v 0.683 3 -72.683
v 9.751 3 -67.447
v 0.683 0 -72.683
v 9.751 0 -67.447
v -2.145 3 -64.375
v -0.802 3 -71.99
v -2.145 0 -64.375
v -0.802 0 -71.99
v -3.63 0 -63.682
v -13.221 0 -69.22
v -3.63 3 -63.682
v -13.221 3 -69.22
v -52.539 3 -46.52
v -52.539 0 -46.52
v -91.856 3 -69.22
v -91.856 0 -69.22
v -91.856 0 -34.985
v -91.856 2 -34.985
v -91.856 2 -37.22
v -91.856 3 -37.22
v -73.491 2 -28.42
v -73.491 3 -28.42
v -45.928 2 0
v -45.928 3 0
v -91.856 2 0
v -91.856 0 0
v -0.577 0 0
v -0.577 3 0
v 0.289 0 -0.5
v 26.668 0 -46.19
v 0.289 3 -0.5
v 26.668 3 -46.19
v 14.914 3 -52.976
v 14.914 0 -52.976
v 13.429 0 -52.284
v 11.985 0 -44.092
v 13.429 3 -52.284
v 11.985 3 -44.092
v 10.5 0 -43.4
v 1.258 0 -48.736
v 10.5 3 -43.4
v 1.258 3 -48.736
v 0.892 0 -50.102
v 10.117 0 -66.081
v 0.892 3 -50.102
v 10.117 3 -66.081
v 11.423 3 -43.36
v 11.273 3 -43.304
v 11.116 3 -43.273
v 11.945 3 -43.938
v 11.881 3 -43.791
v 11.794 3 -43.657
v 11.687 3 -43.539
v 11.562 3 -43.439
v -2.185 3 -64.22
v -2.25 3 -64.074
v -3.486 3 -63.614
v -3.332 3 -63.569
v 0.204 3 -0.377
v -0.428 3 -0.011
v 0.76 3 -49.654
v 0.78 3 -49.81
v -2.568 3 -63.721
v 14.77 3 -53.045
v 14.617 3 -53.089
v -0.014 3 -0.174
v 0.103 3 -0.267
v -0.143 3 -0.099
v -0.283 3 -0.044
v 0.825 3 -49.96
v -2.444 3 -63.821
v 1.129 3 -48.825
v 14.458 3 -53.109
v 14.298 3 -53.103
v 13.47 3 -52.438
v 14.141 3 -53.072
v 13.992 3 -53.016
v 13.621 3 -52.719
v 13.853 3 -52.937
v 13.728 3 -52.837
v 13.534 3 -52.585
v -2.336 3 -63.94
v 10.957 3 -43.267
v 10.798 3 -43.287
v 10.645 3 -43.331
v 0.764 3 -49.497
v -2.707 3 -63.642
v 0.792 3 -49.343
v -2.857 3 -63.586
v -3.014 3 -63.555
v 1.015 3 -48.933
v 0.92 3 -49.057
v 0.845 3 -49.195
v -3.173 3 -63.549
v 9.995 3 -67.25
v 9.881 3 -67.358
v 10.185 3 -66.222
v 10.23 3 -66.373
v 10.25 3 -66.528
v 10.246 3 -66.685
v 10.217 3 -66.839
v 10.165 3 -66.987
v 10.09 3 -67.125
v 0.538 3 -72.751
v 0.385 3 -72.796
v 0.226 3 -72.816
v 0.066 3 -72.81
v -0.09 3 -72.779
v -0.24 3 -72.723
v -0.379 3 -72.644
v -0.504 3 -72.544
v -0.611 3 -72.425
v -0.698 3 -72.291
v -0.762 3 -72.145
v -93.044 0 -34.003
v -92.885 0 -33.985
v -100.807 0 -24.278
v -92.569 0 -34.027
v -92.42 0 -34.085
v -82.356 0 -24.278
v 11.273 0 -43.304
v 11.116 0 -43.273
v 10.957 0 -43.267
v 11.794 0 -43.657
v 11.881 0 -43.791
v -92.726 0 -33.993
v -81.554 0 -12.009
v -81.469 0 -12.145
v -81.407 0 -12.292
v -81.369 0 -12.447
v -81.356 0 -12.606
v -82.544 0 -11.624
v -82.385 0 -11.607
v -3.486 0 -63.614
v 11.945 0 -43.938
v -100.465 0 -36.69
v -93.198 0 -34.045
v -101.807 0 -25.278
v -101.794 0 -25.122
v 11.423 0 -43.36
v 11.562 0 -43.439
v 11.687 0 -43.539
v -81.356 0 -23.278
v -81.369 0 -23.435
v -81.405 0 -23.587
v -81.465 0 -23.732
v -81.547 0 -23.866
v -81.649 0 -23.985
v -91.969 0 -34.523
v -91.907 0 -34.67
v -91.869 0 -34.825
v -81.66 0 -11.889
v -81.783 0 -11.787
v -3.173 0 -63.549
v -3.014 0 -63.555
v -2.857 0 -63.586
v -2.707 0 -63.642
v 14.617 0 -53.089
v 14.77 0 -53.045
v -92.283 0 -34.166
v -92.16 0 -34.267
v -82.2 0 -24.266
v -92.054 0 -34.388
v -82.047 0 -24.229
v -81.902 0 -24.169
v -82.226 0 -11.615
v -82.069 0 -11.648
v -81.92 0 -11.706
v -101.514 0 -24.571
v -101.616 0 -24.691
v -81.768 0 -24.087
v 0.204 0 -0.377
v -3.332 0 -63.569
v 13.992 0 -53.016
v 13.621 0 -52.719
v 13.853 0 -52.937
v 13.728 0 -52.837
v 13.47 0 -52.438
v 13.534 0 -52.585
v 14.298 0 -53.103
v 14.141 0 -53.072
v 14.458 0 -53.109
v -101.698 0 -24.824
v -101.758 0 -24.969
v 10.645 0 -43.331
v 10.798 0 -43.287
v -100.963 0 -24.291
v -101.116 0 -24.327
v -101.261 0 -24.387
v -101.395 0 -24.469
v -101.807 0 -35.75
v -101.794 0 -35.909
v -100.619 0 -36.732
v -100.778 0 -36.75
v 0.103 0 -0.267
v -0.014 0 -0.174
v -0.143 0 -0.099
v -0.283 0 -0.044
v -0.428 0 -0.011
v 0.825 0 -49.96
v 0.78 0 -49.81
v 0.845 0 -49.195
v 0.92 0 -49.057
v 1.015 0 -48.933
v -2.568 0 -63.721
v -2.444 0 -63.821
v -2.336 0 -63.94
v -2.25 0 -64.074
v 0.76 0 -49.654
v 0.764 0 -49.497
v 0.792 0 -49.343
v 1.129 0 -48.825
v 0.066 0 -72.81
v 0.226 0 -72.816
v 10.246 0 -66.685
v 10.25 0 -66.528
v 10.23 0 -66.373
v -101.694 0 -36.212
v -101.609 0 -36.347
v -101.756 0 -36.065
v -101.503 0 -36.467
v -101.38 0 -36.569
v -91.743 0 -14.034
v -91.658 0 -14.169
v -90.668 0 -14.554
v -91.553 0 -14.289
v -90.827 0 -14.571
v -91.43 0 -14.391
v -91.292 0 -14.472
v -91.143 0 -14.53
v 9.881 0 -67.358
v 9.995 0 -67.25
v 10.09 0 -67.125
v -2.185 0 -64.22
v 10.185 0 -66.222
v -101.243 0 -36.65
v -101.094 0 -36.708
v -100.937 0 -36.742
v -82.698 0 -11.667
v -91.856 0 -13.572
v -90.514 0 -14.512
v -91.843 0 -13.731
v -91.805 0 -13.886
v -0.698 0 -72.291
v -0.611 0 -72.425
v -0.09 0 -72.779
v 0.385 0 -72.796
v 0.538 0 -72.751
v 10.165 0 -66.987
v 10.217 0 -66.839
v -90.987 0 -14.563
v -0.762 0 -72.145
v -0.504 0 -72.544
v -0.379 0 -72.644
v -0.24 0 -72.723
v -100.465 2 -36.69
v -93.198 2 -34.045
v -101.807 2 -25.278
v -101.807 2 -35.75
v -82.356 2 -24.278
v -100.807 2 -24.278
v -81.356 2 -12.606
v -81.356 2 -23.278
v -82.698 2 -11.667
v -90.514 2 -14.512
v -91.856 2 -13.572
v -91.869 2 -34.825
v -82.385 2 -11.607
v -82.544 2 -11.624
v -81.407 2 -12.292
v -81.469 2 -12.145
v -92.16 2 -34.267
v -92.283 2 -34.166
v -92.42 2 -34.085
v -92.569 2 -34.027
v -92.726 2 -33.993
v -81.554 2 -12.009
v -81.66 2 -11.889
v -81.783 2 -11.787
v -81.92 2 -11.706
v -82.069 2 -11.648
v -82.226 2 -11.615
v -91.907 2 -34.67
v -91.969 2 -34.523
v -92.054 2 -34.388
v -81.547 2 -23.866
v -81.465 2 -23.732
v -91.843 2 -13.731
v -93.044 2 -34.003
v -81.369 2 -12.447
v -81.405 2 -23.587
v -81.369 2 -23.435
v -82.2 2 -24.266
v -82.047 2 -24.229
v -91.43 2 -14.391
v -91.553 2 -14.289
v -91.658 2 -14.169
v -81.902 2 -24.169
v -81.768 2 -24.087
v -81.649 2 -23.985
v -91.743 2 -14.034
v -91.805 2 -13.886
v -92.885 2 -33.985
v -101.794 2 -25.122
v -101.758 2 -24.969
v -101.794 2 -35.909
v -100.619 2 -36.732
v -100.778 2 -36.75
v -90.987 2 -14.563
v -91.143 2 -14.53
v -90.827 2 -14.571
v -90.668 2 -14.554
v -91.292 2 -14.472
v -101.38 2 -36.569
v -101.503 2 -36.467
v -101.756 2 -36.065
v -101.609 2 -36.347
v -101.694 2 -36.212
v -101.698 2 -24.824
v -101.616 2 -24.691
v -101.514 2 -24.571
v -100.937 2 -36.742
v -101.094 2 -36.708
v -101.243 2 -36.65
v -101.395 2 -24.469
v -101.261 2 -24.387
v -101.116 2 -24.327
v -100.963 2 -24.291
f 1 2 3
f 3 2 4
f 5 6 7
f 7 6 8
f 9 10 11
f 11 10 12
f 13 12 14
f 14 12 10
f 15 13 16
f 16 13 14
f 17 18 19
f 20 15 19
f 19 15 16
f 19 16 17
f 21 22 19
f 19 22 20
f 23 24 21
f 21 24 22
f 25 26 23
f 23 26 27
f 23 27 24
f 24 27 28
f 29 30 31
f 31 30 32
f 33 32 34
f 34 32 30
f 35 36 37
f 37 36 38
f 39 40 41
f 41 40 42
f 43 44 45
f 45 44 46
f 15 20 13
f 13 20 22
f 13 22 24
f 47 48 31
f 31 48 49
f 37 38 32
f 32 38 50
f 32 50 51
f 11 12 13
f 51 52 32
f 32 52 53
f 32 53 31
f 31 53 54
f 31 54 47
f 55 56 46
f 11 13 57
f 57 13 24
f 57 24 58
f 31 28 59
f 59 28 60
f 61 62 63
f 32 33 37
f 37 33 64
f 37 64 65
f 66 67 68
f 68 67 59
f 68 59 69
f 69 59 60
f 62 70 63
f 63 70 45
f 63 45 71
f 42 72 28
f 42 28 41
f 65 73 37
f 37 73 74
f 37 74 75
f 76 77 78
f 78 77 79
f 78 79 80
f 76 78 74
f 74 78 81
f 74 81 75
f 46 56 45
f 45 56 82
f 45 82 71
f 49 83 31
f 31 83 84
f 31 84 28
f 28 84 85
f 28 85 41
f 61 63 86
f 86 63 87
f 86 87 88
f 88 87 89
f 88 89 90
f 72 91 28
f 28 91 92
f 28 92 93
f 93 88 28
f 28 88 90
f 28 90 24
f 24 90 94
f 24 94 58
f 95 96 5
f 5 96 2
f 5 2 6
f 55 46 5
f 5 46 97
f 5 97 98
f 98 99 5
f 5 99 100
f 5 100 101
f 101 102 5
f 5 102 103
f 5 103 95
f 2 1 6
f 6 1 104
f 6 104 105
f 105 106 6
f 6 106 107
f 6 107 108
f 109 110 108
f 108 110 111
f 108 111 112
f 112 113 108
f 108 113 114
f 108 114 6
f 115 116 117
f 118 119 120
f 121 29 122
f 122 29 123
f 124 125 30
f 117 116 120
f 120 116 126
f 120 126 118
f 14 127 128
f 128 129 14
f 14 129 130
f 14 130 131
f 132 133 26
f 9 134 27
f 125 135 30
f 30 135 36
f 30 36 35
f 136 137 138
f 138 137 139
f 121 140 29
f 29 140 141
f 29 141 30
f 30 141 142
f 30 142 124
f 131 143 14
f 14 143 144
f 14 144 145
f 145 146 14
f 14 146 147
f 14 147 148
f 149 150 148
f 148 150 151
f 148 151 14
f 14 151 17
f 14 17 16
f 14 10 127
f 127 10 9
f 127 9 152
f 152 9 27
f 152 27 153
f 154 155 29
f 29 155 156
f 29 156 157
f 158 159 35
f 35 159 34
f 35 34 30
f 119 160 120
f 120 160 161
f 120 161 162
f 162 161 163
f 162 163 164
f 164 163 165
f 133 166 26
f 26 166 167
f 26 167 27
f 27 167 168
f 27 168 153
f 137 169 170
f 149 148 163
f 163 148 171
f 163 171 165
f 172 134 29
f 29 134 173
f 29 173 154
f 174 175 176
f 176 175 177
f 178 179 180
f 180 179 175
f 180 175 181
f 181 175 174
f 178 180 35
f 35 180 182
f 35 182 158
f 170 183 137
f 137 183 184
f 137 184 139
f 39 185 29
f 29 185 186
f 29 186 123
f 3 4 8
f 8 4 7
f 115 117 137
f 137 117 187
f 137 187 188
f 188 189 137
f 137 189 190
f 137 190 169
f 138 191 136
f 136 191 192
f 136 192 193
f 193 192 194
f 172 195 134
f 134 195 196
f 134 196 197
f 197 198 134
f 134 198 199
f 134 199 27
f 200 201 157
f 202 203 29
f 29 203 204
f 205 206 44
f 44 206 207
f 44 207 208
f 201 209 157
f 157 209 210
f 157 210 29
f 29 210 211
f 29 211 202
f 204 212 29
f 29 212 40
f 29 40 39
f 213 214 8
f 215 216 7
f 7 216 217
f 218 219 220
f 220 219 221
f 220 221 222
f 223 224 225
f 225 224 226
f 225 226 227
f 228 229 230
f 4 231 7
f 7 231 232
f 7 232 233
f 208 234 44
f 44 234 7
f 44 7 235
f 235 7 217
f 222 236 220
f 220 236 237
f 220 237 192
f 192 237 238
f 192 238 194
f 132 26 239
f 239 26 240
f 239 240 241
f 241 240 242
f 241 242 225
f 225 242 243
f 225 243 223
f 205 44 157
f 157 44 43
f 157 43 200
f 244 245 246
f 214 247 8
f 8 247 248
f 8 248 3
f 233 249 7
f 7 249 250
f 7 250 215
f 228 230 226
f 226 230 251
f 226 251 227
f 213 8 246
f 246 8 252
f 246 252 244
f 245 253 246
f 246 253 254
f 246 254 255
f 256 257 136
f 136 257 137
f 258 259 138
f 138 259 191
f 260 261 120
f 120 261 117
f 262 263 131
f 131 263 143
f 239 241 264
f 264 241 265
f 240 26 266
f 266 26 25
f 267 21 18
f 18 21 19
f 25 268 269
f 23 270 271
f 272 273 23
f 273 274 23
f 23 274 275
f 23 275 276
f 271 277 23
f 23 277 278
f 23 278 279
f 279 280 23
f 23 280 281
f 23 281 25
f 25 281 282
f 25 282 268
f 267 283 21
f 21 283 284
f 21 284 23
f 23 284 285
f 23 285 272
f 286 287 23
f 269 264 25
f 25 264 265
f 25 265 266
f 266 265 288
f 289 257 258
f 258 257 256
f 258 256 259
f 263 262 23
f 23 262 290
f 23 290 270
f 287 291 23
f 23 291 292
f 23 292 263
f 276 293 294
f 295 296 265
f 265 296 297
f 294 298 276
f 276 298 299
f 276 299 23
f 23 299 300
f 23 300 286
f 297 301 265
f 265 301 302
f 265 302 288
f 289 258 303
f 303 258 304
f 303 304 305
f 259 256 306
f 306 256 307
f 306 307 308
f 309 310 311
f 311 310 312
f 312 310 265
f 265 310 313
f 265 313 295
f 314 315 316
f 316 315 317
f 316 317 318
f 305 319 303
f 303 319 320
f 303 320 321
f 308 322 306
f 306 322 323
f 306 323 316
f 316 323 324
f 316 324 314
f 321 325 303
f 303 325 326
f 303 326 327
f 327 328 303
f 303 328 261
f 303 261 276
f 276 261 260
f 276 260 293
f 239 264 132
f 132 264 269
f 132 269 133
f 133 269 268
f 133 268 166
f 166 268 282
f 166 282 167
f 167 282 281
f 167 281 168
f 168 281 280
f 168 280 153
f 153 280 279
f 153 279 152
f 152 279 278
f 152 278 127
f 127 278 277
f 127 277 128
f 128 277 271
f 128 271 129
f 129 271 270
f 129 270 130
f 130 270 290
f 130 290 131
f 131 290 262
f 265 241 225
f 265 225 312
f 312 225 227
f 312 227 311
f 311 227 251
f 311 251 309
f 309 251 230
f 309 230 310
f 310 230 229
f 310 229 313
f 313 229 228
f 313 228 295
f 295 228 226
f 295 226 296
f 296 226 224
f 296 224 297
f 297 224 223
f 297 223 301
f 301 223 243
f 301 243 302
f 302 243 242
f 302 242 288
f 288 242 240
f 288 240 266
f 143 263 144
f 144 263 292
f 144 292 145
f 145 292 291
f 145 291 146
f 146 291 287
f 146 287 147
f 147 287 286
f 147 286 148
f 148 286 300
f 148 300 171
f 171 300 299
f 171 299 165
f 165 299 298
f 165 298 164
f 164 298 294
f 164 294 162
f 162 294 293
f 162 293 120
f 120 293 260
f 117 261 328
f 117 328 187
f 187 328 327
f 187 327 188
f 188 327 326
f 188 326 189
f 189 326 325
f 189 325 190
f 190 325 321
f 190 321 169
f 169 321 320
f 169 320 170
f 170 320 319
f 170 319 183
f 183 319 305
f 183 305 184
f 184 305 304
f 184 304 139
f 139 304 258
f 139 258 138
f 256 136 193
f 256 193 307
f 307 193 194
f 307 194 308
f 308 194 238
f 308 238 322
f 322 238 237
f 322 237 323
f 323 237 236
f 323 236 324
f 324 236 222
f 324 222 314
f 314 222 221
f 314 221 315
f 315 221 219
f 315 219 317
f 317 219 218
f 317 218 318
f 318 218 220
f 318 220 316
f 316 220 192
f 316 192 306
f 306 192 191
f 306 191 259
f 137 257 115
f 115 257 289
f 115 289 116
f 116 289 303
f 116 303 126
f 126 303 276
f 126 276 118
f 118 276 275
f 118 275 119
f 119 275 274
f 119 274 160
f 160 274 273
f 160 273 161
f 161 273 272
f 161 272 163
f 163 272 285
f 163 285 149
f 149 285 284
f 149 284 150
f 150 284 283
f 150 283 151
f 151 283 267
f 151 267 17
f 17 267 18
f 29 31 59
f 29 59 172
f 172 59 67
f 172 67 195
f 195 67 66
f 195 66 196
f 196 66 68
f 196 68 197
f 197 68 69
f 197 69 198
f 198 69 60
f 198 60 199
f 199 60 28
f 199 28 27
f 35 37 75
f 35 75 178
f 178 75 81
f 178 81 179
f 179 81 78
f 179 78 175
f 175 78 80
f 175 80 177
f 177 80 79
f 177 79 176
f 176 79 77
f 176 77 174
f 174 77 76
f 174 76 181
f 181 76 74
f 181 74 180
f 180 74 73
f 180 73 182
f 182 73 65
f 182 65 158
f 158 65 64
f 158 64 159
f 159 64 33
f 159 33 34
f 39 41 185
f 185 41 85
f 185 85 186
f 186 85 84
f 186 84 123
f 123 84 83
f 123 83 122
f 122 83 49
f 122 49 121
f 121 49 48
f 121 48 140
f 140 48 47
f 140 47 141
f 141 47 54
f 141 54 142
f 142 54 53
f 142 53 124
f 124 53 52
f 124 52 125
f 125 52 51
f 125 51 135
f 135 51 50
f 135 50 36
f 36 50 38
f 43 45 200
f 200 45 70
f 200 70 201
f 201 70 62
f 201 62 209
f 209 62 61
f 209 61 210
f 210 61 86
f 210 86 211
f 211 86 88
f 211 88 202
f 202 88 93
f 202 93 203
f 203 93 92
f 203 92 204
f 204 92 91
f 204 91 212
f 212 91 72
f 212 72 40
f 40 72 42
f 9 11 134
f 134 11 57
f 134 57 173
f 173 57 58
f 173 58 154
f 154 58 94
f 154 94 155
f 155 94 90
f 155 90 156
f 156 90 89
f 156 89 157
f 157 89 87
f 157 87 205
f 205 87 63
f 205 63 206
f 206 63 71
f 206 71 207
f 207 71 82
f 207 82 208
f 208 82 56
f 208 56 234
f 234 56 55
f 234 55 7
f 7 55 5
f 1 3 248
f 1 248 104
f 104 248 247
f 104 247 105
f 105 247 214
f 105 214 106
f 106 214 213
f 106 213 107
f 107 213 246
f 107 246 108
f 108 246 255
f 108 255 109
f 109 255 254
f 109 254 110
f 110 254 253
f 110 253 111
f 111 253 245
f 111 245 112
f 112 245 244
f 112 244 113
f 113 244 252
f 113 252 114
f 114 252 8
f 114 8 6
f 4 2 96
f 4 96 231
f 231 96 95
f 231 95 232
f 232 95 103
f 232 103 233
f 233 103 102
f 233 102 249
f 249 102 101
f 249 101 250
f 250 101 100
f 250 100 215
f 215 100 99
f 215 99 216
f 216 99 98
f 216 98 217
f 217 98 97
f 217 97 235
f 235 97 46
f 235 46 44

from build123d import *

# Parameters (mm, degrees)
P_IDAT_VYSUNUT_M1_DEPTH = 3
P_IDAT_VYSUNUT_M2_DEPTH = 2
ZAOBLIT1_R              = 1


with BuildPart() as part:
    # Skica1 → Přidat vysunutím1 (new body)
    with BuildSketch(Plane(origin=(0, 0, 0), x_dir=(1, 0, 0), z_dir=(0, 1, 0))):
        Polygon((26.667853432, 46.190077074), (13.677472376, 53.690077074), (11.737150801, 42.685966604), (0.392218012, 49.235966604), (10.61747027, 66.946623035), (-0.554257439, 73.396623035), (-2.393036353, 62.968389614), (-13.22114317, 69.22), (-52.538696502, 46.52), (-91.856249834, 69.22), (-91.856249834, 37.22), (-73.49138407, 28.419769911), (-45.928124917, 0), (0, 0), align=None)
    extrude(amount=P_IDAT_VYSUNUT_M1_DEPTH)

    # Skica1<15> → Přidat vysunutím2 (add)
    with BuildSketch(Plane(origin=(0, 0, 0), x_dir=(1, 0, 0), z_dir=(0, 1, 0))):
        Polygon((-91.856249834, 0), (-45.928124917, 0), (-73.49138407, 28.419769911), (-91.856249834, 37.22), (-91.856249834, 33.55662508), (-101.80675435, 37.17831254), (-101.80675435, 24.27831254), (-81.356249834, 24.27831254), (-81.356249834, 11.17831254), (-91.856249834, 15), align=None)
    extrude(amount=P_IDAT_VYSUNUT_M2_DEPTH)

    # Zaoblit1
    zaoblit1_edges = [part.edges().sort_by_distance(p)[0] for p in [
        (-81.356249834, 1, -11.17831254),
        (-91.856249834, 1, -15),
        (-81.356249834, 1, -24.27831254),
        (-101.80675435, 1, -24.27831254),
        (-101.80675435, 1, -37.17831254),
        (-91.856249834, 1, -33.55662508),
        (0, 1.5, 0),
        (13.677472376, 1.5, -53.690077074),
        (11.737150801, 1.5, -42.685966604),
        (0.392218012, 1.5, -49.235966604),
        (-2.393036353, 1.5, -62.968389614),
        (-0.554257439, 1.5, -73.396623035),
        (10.61747027, 1.5, -66.946623035),
    ]]
    fillet(zaoblit1_edges, radius=ZAOBLIT1_R)


solid = part.part
